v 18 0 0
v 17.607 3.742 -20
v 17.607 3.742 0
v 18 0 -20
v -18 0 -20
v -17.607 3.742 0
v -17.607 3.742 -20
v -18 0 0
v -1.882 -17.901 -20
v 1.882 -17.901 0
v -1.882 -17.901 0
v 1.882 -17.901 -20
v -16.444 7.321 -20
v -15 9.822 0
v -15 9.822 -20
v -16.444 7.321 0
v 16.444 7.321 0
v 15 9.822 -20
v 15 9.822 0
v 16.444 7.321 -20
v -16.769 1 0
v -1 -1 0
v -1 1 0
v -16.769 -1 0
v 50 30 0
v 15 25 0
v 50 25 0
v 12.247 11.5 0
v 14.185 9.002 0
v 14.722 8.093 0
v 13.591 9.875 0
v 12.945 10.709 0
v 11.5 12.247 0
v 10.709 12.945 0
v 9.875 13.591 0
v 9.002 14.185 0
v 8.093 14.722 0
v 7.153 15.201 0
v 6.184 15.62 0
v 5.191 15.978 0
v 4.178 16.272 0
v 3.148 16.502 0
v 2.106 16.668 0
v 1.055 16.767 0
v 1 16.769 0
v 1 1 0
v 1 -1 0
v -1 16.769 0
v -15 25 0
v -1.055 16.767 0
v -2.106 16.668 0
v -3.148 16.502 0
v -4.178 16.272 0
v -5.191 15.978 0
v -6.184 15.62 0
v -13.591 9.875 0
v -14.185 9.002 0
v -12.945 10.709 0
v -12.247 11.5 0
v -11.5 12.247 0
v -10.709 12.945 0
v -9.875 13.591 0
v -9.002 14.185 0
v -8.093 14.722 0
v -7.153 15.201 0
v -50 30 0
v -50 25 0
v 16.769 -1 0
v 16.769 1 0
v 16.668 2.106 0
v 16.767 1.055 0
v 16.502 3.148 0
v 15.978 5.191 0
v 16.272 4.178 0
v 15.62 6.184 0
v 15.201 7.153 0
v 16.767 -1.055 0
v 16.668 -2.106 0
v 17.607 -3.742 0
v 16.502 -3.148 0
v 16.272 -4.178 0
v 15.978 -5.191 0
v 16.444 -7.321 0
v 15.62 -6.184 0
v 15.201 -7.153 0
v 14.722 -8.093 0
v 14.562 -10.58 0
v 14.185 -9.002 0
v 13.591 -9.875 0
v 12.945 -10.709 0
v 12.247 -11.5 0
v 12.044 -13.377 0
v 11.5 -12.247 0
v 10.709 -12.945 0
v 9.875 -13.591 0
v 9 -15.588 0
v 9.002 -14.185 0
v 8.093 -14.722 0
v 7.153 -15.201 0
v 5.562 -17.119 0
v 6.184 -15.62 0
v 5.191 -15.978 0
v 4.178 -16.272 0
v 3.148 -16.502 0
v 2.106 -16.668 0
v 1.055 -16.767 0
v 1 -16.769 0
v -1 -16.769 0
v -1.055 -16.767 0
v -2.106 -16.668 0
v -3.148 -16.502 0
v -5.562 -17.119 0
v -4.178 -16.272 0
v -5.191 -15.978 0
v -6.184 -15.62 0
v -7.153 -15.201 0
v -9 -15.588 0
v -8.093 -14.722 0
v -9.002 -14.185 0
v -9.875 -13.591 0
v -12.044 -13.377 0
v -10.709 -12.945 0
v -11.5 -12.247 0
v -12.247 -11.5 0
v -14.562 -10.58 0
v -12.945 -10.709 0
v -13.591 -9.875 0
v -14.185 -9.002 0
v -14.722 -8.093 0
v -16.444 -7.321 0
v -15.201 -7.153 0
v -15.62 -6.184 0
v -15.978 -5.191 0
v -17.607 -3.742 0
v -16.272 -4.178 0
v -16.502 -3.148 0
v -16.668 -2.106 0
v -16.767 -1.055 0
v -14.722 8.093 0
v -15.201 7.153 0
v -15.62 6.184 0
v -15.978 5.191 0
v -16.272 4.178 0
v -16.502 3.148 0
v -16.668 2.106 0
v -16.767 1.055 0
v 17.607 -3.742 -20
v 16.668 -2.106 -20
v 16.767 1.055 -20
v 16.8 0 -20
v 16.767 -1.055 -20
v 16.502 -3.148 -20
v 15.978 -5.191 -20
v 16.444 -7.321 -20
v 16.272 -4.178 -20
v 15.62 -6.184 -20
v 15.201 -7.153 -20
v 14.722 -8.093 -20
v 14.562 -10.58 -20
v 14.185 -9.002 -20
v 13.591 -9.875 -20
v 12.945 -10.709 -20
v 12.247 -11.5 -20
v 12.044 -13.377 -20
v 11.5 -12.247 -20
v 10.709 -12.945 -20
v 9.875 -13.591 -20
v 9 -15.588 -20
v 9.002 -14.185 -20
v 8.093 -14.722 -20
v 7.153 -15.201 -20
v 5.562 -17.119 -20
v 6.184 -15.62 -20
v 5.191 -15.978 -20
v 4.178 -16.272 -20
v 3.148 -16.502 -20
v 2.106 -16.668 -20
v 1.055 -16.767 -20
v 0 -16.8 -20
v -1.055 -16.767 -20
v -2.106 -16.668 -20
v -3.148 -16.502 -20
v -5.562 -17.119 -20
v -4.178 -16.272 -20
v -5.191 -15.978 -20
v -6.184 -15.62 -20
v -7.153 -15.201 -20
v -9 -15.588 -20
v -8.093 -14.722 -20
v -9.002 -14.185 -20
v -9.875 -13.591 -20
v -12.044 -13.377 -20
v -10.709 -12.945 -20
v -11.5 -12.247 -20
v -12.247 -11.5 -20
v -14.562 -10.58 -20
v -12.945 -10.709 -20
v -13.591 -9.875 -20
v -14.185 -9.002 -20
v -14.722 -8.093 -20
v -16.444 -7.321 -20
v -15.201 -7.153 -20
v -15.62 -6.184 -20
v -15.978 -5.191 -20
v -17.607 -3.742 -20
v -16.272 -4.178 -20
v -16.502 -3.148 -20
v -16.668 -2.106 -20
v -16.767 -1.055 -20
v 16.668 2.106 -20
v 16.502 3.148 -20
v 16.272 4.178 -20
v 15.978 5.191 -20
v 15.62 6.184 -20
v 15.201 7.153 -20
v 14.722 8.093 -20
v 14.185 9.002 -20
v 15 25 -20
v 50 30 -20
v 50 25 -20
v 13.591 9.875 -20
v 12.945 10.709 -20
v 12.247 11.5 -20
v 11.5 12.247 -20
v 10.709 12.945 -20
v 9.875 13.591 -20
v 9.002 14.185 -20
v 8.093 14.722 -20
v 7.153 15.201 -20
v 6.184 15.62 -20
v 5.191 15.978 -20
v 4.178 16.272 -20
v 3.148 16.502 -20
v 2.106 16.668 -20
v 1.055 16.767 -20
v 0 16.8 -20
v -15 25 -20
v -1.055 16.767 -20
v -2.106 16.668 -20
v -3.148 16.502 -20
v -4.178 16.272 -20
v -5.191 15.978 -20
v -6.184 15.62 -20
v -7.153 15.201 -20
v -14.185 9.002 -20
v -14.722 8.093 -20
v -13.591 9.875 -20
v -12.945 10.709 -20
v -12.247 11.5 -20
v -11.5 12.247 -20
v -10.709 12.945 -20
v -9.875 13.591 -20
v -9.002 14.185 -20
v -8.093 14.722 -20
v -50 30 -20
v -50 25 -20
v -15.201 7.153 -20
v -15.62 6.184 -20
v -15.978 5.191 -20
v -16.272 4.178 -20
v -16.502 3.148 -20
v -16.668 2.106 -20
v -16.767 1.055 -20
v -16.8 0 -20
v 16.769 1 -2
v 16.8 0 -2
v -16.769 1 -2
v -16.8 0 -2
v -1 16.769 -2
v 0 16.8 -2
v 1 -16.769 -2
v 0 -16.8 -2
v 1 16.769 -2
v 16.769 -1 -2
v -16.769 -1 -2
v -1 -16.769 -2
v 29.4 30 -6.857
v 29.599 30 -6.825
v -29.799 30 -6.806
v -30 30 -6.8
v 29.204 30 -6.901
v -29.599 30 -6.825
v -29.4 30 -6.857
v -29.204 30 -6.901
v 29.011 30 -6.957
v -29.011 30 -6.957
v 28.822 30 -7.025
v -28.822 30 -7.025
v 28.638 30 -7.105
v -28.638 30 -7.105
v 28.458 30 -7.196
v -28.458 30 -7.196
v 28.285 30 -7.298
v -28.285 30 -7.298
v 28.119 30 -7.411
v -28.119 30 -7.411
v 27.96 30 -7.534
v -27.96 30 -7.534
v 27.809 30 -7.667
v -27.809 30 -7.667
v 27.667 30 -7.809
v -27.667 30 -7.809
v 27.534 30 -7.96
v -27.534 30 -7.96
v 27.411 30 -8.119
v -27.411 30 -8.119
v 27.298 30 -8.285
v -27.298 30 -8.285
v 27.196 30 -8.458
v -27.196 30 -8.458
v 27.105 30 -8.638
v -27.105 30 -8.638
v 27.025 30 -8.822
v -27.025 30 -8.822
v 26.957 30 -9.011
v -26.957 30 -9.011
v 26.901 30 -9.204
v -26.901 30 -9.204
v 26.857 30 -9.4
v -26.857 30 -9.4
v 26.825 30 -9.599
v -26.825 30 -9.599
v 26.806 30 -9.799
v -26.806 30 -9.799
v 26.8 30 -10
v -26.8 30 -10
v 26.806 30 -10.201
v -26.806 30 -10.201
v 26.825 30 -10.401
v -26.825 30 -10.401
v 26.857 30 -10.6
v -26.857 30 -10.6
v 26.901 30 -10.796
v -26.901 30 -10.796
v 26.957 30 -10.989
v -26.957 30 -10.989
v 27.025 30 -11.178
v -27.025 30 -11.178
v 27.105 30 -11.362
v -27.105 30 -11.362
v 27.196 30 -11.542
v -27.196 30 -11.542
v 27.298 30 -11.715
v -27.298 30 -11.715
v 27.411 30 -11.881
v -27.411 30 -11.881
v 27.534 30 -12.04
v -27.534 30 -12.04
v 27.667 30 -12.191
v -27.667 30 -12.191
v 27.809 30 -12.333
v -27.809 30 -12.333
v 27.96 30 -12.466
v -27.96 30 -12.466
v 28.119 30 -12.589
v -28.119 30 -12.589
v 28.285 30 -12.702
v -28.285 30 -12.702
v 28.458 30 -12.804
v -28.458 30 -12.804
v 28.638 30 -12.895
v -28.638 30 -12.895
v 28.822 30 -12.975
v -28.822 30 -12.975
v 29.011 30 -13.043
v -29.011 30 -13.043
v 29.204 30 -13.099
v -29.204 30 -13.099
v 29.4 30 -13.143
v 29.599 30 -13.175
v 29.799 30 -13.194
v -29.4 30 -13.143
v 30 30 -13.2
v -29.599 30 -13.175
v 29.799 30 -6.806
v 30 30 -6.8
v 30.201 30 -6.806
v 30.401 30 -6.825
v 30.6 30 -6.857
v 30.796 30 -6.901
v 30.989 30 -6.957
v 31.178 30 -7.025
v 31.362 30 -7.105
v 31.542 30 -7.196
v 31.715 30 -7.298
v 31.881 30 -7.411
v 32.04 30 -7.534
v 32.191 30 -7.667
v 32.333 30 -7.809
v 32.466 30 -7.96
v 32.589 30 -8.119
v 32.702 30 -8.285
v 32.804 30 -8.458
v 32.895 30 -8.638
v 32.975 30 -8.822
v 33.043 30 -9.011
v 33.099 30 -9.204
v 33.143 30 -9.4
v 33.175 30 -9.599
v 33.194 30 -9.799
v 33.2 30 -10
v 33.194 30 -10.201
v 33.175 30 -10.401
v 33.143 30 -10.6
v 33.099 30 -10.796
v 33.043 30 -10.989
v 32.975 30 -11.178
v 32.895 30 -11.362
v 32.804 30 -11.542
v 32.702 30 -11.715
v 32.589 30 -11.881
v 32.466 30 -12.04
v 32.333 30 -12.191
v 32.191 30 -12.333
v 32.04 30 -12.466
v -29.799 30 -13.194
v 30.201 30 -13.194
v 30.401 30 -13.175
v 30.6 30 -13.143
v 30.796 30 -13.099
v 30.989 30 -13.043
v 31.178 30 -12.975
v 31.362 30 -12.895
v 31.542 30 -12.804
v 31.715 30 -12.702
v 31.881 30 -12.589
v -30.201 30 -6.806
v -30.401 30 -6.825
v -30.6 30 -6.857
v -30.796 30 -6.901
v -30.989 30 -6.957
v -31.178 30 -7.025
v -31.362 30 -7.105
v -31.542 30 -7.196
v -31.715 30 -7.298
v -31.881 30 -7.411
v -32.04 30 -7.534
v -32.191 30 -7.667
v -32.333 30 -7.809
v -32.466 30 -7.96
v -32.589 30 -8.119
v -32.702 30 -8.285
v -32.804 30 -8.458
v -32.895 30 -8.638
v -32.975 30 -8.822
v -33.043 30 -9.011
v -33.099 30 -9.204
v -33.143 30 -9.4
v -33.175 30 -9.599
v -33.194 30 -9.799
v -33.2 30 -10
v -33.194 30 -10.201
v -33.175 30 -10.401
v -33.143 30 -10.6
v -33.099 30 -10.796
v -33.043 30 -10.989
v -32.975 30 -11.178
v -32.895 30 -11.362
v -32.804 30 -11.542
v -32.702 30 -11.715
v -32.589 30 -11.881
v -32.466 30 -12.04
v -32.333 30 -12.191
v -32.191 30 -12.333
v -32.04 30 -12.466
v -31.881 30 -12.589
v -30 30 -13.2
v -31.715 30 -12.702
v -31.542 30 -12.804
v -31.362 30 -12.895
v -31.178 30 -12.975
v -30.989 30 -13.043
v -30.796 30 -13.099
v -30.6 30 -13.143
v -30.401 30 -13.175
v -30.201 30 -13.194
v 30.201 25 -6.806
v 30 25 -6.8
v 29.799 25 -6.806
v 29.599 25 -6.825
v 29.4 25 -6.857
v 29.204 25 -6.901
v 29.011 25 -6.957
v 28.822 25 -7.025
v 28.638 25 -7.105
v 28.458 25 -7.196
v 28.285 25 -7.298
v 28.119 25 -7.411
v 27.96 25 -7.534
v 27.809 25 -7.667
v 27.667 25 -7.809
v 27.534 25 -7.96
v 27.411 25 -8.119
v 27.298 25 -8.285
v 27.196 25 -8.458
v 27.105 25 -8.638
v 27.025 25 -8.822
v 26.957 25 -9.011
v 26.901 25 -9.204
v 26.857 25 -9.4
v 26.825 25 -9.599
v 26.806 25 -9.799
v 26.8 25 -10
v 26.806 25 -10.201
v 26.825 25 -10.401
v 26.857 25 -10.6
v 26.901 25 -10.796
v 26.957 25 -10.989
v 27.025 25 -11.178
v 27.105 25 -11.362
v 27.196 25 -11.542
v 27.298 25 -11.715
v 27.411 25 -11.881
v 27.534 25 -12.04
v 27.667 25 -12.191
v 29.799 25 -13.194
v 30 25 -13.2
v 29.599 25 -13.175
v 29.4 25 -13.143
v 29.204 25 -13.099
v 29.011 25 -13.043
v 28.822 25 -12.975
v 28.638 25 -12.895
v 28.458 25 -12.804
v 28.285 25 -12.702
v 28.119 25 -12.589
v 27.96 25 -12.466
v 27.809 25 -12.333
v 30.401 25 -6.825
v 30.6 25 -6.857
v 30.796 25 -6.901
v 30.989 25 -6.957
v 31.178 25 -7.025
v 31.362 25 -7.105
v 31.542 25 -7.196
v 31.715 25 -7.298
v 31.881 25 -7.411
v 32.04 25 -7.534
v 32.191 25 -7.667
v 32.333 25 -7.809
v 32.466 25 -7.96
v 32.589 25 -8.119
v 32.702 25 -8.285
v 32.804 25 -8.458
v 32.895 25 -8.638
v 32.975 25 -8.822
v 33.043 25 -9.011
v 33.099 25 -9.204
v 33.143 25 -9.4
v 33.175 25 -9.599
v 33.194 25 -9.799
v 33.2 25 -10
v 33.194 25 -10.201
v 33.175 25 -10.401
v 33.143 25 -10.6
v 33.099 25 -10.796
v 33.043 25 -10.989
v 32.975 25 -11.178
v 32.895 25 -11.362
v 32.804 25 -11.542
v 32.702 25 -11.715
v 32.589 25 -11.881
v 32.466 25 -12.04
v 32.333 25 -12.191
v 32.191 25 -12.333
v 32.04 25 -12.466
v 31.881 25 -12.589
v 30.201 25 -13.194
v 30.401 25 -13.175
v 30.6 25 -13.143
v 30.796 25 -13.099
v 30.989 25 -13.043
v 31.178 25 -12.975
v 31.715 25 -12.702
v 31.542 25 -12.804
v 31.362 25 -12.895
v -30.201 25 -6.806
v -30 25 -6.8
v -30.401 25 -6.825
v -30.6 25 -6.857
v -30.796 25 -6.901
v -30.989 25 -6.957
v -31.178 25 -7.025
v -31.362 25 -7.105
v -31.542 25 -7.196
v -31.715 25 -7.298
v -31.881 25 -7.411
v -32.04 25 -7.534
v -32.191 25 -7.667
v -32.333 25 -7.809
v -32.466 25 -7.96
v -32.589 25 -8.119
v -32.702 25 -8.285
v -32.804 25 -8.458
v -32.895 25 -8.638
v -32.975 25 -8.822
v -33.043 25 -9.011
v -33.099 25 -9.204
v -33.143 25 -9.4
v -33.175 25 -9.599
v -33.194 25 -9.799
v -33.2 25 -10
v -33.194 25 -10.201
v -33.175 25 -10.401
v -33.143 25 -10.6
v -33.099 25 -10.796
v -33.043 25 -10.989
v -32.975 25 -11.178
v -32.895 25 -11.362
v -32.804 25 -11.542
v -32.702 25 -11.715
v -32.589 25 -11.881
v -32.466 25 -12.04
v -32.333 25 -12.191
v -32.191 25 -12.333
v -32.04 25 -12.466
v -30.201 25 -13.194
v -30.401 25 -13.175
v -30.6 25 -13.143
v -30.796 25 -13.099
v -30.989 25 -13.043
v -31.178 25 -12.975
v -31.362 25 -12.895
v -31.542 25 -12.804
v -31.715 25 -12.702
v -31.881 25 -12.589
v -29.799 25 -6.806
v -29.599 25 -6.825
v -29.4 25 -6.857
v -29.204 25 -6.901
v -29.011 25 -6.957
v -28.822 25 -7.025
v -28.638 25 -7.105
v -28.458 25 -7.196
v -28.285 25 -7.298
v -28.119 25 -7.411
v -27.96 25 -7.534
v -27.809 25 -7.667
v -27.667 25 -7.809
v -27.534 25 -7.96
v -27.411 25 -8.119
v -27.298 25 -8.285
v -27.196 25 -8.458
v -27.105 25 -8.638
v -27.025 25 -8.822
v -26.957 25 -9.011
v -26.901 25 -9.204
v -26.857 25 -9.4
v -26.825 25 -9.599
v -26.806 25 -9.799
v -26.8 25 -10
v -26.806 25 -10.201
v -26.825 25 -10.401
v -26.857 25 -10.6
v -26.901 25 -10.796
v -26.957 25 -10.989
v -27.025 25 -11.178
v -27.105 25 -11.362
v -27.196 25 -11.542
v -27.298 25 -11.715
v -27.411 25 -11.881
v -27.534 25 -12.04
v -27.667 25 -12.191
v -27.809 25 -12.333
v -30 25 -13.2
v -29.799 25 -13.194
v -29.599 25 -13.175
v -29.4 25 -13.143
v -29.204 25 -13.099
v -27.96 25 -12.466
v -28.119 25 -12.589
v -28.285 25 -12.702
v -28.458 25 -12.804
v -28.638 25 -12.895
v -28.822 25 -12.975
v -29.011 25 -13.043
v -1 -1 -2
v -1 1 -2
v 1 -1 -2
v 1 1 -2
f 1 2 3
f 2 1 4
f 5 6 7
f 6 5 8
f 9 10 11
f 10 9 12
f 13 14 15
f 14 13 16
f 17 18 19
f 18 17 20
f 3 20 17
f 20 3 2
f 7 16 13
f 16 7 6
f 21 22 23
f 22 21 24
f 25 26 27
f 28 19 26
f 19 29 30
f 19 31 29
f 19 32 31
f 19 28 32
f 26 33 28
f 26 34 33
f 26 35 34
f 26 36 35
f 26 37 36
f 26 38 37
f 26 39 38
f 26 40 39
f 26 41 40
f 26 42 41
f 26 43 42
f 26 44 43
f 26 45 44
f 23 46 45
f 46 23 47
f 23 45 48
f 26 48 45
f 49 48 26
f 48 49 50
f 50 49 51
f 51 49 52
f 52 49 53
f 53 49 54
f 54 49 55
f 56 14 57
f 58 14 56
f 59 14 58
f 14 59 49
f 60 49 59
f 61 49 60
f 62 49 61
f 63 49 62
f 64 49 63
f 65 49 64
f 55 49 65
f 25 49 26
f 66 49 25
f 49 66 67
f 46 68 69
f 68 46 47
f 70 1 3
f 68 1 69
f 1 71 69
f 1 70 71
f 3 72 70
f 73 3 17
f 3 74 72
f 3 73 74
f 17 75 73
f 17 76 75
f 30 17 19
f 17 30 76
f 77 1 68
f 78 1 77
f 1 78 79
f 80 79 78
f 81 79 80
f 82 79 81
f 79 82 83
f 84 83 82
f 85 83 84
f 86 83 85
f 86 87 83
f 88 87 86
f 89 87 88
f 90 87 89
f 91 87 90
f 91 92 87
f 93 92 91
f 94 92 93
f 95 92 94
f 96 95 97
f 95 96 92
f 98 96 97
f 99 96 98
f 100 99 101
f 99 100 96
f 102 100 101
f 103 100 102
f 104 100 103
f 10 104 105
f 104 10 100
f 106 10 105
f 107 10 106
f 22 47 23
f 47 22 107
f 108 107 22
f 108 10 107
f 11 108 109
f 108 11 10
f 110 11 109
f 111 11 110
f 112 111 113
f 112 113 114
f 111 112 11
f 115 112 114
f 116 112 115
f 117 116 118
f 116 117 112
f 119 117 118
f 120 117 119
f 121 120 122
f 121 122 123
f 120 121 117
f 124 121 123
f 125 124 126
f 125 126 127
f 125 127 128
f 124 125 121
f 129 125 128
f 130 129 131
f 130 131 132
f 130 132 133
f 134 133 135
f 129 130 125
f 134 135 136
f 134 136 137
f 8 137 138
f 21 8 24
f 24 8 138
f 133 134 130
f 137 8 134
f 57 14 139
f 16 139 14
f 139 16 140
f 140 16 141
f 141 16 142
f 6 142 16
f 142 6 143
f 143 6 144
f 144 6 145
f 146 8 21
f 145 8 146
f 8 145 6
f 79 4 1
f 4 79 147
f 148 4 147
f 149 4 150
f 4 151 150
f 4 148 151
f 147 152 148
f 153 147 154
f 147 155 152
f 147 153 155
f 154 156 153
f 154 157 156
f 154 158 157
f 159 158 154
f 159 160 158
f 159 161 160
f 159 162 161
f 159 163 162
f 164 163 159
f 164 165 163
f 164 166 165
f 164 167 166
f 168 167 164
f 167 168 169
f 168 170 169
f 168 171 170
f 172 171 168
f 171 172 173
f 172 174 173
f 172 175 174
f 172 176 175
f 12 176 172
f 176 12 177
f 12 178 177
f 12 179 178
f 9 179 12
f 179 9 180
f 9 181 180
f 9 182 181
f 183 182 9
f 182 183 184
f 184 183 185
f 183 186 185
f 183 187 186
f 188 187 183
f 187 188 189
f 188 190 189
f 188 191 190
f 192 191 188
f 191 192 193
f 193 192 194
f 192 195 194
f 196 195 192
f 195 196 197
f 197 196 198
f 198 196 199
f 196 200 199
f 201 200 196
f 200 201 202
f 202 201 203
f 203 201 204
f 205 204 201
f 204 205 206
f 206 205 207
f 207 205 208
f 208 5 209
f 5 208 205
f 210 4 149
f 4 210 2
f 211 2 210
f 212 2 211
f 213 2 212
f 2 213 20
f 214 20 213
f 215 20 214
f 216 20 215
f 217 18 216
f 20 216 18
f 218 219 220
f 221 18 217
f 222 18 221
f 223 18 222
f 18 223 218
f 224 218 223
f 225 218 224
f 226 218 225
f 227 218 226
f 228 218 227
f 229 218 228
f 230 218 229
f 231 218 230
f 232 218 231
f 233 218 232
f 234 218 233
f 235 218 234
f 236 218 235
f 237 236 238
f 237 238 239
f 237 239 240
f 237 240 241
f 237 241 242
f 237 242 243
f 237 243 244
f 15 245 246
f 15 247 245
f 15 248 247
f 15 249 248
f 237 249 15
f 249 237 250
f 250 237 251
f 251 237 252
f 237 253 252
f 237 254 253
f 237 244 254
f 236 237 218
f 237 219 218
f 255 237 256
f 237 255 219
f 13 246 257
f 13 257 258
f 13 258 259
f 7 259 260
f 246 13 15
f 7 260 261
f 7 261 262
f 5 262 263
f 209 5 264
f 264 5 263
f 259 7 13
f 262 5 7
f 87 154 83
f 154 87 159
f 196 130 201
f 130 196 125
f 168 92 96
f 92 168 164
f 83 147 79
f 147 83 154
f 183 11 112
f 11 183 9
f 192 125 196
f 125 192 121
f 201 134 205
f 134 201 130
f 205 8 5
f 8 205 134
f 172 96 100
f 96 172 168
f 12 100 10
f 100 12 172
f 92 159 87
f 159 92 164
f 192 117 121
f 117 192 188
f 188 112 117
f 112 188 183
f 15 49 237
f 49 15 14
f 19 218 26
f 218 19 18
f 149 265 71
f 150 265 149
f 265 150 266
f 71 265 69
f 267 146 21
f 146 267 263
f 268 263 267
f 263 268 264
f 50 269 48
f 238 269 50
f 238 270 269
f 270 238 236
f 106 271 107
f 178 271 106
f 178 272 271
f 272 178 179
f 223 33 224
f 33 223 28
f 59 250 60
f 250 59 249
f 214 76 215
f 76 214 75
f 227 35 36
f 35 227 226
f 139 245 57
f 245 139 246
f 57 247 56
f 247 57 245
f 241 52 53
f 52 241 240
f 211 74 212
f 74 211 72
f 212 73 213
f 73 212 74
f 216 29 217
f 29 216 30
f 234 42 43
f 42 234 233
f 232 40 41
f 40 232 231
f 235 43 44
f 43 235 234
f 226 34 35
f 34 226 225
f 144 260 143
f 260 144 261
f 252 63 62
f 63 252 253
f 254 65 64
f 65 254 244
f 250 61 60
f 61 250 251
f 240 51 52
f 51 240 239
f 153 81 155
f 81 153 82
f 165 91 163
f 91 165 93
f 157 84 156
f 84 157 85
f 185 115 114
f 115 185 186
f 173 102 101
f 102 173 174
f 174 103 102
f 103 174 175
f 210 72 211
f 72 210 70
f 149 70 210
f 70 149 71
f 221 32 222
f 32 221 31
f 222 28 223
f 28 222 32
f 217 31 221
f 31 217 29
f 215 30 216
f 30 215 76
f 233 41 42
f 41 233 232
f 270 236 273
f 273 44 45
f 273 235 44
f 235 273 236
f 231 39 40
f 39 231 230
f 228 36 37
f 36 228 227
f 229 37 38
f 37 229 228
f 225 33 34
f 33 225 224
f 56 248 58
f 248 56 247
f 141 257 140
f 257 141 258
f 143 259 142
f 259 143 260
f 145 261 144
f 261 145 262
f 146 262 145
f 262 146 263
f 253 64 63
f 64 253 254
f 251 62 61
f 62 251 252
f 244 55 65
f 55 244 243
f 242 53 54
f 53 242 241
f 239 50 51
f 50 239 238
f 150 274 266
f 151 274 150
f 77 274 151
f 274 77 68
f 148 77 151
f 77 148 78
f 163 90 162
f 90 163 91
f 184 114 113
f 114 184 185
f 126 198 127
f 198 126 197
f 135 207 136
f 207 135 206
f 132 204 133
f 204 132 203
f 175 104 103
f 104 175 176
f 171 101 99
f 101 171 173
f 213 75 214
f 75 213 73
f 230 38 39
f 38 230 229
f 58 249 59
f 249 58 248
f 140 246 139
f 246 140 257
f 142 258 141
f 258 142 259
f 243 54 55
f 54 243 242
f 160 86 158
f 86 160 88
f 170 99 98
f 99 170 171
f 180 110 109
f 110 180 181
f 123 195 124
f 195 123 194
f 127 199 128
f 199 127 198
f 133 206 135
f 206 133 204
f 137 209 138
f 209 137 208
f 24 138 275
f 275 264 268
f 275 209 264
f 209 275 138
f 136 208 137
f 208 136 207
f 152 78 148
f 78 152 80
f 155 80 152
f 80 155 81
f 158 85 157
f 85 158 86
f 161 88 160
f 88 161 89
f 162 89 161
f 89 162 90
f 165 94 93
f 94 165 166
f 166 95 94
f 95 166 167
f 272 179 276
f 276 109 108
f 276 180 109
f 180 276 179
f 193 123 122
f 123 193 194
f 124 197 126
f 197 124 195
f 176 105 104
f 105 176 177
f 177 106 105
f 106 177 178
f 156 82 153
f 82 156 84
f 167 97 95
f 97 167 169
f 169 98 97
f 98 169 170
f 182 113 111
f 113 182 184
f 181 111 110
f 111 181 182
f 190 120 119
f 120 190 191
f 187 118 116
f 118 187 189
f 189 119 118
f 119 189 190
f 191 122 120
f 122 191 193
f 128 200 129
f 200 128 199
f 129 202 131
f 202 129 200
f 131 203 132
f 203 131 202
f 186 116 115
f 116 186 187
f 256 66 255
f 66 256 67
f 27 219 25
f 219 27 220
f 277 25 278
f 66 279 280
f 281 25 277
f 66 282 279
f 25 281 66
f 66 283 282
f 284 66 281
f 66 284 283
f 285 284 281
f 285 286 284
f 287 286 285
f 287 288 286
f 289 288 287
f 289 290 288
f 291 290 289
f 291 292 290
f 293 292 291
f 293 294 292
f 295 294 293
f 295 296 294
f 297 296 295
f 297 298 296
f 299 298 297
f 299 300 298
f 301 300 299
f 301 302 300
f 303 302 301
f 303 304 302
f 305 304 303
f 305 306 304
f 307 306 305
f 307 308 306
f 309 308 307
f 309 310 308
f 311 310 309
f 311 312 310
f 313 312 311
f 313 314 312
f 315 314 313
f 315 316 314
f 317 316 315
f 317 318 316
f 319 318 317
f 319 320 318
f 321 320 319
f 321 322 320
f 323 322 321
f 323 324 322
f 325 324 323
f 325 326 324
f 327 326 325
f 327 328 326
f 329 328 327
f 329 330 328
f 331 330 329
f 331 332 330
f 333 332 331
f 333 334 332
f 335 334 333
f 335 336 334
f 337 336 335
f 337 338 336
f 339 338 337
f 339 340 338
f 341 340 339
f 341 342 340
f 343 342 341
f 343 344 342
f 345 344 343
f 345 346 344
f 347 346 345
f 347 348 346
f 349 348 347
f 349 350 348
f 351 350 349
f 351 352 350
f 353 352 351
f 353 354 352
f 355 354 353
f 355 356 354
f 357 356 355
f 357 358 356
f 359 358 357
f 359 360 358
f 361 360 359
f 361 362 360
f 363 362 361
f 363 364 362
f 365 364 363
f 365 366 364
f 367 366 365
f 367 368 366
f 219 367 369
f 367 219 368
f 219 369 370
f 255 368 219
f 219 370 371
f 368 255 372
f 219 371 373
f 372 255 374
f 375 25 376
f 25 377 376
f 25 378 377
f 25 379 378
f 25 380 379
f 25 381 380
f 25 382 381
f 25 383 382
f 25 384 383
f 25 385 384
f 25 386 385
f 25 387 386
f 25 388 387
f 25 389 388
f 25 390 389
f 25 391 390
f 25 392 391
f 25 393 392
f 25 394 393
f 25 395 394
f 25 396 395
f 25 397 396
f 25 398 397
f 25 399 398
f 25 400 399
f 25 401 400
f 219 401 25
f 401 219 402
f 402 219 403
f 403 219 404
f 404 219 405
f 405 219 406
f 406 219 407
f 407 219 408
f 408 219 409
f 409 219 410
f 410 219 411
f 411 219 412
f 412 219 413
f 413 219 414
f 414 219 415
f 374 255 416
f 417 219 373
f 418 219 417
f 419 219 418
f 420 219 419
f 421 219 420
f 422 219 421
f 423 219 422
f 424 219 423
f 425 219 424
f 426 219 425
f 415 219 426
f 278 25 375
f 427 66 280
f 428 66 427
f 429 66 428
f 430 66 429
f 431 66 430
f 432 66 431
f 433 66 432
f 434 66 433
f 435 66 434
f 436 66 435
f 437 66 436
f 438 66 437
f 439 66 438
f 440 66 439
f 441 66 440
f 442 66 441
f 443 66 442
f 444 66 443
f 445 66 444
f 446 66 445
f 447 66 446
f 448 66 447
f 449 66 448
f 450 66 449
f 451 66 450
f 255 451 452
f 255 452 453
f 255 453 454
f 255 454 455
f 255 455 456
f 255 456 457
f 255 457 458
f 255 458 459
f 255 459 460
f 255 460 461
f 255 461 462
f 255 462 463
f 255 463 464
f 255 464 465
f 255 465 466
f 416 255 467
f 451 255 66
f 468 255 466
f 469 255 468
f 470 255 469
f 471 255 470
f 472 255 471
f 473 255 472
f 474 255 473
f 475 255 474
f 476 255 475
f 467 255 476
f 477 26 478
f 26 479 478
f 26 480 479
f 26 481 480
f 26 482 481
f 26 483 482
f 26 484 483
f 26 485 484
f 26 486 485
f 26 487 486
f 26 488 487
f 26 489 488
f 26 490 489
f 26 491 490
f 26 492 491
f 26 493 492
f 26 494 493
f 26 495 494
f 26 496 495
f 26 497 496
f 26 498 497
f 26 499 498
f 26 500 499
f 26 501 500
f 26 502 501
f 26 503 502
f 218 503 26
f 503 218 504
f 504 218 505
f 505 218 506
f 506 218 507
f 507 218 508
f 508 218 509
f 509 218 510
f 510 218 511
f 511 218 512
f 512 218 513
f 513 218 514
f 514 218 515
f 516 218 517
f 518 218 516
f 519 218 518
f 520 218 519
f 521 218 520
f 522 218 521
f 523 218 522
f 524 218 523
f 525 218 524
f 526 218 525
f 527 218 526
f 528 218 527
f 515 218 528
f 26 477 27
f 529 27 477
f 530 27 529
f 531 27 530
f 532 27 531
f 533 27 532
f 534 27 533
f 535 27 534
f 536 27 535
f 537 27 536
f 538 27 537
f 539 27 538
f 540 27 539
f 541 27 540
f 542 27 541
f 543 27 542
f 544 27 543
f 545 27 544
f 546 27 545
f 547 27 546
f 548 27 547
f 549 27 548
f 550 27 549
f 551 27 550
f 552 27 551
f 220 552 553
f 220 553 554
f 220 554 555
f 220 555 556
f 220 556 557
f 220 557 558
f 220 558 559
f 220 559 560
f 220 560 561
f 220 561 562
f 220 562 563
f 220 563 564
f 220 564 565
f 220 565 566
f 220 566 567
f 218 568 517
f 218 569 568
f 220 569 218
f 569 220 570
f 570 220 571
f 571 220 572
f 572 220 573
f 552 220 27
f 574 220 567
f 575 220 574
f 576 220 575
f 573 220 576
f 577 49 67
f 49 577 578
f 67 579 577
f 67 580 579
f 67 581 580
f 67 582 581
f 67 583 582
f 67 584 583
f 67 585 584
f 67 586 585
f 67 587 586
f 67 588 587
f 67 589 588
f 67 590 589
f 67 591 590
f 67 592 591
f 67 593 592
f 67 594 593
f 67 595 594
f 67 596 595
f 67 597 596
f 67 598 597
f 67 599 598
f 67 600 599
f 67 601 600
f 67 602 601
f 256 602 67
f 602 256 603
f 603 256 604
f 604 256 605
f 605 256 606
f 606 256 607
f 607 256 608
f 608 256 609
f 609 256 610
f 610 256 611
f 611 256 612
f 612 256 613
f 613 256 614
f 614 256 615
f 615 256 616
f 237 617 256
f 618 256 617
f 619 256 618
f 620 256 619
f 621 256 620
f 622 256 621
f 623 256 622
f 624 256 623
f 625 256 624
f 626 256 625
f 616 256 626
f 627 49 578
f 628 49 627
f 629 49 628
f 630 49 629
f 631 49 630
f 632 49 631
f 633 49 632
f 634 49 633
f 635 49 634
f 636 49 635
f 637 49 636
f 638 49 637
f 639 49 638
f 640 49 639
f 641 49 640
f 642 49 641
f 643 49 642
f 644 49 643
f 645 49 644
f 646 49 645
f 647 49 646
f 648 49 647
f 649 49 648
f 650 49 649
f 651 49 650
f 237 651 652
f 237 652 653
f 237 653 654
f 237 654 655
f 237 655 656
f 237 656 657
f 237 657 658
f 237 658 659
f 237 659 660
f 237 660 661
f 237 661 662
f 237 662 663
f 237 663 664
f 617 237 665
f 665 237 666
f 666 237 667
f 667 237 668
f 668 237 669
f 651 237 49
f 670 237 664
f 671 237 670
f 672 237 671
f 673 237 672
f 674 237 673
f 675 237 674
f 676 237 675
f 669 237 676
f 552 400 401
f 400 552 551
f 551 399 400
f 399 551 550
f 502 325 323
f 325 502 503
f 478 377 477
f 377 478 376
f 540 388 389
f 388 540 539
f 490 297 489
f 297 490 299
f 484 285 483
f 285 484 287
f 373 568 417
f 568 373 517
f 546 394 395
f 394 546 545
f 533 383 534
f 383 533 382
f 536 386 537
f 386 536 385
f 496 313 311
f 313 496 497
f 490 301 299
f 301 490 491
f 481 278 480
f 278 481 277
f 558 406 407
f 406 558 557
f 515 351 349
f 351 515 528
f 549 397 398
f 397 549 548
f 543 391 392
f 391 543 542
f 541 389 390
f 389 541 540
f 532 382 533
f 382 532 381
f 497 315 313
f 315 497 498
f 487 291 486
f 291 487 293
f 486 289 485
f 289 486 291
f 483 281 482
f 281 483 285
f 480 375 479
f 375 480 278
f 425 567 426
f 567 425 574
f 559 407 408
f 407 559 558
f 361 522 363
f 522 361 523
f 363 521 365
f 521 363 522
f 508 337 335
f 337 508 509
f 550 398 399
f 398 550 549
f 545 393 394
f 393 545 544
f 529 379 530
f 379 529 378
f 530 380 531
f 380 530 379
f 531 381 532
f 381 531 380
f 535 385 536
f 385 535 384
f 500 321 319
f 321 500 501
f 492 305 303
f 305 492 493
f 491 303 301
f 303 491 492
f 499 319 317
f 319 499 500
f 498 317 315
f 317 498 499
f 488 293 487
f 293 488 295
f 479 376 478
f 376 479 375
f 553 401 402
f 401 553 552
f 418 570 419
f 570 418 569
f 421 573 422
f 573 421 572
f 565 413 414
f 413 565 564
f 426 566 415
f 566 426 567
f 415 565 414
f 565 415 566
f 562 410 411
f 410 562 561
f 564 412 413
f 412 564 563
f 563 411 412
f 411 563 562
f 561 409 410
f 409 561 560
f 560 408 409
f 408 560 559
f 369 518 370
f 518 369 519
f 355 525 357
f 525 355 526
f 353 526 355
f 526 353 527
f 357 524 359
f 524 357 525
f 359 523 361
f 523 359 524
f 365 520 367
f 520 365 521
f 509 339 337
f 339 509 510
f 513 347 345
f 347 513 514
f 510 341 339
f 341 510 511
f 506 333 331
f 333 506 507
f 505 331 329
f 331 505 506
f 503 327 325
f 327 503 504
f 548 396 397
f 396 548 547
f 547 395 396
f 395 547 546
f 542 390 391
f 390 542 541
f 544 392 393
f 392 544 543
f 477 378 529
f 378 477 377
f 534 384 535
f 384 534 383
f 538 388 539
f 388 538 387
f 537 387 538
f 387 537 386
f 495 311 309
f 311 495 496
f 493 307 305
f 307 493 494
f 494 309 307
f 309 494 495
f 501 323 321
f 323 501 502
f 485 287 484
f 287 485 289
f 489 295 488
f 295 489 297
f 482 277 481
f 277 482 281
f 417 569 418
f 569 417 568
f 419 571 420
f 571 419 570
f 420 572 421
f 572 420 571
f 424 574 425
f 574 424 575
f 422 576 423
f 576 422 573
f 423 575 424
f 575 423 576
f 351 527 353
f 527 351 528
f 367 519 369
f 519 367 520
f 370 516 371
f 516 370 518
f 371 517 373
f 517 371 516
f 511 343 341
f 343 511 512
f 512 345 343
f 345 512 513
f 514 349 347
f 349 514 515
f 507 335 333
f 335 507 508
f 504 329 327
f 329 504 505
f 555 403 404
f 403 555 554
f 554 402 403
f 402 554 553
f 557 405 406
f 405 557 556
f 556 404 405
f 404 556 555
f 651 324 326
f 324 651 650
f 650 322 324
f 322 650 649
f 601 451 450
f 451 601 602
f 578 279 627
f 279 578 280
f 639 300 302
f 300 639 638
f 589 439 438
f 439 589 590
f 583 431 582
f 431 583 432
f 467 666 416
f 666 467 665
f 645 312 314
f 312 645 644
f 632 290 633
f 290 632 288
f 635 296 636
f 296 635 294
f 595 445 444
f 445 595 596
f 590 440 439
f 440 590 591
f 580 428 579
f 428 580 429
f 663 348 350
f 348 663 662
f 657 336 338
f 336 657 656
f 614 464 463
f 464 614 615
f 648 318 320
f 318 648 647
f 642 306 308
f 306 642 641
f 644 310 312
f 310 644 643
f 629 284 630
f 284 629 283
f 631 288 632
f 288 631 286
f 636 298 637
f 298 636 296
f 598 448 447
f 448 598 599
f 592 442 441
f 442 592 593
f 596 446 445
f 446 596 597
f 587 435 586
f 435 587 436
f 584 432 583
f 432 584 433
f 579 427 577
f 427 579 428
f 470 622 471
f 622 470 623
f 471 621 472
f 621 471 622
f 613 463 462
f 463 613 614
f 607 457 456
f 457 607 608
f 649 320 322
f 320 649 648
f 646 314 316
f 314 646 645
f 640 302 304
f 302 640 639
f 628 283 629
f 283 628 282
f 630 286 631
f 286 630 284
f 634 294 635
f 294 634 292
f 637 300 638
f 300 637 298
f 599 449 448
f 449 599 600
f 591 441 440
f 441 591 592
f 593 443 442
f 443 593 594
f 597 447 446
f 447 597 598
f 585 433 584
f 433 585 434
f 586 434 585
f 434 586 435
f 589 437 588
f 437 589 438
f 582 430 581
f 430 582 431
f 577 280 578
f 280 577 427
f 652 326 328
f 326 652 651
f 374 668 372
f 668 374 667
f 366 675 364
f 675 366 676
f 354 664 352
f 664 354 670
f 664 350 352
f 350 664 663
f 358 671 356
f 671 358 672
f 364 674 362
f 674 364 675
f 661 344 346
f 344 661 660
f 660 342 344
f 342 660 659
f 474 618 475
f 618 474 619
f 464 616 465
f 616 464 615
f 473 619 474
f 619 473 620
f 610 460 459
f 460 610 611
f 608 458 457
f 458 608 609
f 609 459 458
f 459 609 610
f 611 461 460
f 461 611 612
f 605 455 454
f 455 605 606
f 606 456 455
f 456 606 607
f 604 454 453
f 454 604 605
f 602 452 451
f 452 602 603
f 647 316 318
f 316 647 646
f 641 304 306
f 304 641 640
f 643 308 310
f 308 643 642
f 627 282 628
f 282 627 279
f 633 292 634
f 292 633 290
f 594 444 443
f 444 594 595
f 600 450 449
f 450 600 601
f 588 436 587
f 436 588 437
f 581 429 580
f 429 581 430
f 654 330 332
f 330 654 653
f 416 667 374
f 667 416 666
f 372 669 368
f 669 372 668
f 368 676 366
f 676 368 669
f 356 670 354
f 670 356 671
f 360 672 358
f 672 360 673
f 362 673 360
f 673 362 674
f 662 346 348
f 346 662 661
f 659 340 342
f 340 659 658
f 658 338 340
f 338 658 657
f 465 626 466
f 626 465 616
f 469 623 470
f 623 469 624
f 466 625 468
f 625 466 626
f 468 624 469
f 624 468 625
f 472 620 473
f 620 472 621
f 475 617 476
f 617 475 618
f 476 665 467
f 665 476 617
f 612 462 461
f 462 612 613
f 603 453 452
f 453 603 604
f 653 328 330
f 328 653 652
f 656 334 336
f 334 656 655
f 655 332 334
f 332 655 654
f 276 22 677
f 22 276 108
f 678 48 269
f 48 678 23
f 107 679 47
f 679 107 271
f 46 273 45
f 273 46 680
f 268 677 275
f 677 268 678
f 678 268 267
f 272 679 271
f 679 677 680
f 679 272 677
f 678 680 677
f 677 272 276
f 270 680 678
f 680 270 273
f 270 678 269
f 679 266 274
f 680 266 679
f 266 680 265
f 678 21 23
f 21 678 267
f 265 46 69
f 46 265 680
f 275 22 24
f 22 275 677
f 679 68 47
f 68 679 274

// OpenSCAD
difference(){
    mount();
    translate([0,0,-25]){
        cylinder(30, 16.8, 16.8, $fn=100);
    }
    
    


}


difference(){
    translate([-50,25,-20]){
    cube([100,5,20]);
    }
    translate([30,40,-10]){
        rotate([90,0,0]){
            cylinder(20, 3.2, 3.2, $fn=100);
        }
    }
    translate([-30,40,-10]){
        rotate([90,0,0]){
            cylinder(20, 3.2, 3.2, $fn=100);
        }
    }

}


translate([-1,-17.5,-2]){
cube([2,35,2]);
}

translate([-17.5,-1,-2]){
    cube([35,2,2]);
}

module mount(){
    translate([0,0,-20]){
    cylinder(20,18, 18);
    } 
    translate([-15,0,-20]){
    cube([30,27.5,20]);
    }
    }
